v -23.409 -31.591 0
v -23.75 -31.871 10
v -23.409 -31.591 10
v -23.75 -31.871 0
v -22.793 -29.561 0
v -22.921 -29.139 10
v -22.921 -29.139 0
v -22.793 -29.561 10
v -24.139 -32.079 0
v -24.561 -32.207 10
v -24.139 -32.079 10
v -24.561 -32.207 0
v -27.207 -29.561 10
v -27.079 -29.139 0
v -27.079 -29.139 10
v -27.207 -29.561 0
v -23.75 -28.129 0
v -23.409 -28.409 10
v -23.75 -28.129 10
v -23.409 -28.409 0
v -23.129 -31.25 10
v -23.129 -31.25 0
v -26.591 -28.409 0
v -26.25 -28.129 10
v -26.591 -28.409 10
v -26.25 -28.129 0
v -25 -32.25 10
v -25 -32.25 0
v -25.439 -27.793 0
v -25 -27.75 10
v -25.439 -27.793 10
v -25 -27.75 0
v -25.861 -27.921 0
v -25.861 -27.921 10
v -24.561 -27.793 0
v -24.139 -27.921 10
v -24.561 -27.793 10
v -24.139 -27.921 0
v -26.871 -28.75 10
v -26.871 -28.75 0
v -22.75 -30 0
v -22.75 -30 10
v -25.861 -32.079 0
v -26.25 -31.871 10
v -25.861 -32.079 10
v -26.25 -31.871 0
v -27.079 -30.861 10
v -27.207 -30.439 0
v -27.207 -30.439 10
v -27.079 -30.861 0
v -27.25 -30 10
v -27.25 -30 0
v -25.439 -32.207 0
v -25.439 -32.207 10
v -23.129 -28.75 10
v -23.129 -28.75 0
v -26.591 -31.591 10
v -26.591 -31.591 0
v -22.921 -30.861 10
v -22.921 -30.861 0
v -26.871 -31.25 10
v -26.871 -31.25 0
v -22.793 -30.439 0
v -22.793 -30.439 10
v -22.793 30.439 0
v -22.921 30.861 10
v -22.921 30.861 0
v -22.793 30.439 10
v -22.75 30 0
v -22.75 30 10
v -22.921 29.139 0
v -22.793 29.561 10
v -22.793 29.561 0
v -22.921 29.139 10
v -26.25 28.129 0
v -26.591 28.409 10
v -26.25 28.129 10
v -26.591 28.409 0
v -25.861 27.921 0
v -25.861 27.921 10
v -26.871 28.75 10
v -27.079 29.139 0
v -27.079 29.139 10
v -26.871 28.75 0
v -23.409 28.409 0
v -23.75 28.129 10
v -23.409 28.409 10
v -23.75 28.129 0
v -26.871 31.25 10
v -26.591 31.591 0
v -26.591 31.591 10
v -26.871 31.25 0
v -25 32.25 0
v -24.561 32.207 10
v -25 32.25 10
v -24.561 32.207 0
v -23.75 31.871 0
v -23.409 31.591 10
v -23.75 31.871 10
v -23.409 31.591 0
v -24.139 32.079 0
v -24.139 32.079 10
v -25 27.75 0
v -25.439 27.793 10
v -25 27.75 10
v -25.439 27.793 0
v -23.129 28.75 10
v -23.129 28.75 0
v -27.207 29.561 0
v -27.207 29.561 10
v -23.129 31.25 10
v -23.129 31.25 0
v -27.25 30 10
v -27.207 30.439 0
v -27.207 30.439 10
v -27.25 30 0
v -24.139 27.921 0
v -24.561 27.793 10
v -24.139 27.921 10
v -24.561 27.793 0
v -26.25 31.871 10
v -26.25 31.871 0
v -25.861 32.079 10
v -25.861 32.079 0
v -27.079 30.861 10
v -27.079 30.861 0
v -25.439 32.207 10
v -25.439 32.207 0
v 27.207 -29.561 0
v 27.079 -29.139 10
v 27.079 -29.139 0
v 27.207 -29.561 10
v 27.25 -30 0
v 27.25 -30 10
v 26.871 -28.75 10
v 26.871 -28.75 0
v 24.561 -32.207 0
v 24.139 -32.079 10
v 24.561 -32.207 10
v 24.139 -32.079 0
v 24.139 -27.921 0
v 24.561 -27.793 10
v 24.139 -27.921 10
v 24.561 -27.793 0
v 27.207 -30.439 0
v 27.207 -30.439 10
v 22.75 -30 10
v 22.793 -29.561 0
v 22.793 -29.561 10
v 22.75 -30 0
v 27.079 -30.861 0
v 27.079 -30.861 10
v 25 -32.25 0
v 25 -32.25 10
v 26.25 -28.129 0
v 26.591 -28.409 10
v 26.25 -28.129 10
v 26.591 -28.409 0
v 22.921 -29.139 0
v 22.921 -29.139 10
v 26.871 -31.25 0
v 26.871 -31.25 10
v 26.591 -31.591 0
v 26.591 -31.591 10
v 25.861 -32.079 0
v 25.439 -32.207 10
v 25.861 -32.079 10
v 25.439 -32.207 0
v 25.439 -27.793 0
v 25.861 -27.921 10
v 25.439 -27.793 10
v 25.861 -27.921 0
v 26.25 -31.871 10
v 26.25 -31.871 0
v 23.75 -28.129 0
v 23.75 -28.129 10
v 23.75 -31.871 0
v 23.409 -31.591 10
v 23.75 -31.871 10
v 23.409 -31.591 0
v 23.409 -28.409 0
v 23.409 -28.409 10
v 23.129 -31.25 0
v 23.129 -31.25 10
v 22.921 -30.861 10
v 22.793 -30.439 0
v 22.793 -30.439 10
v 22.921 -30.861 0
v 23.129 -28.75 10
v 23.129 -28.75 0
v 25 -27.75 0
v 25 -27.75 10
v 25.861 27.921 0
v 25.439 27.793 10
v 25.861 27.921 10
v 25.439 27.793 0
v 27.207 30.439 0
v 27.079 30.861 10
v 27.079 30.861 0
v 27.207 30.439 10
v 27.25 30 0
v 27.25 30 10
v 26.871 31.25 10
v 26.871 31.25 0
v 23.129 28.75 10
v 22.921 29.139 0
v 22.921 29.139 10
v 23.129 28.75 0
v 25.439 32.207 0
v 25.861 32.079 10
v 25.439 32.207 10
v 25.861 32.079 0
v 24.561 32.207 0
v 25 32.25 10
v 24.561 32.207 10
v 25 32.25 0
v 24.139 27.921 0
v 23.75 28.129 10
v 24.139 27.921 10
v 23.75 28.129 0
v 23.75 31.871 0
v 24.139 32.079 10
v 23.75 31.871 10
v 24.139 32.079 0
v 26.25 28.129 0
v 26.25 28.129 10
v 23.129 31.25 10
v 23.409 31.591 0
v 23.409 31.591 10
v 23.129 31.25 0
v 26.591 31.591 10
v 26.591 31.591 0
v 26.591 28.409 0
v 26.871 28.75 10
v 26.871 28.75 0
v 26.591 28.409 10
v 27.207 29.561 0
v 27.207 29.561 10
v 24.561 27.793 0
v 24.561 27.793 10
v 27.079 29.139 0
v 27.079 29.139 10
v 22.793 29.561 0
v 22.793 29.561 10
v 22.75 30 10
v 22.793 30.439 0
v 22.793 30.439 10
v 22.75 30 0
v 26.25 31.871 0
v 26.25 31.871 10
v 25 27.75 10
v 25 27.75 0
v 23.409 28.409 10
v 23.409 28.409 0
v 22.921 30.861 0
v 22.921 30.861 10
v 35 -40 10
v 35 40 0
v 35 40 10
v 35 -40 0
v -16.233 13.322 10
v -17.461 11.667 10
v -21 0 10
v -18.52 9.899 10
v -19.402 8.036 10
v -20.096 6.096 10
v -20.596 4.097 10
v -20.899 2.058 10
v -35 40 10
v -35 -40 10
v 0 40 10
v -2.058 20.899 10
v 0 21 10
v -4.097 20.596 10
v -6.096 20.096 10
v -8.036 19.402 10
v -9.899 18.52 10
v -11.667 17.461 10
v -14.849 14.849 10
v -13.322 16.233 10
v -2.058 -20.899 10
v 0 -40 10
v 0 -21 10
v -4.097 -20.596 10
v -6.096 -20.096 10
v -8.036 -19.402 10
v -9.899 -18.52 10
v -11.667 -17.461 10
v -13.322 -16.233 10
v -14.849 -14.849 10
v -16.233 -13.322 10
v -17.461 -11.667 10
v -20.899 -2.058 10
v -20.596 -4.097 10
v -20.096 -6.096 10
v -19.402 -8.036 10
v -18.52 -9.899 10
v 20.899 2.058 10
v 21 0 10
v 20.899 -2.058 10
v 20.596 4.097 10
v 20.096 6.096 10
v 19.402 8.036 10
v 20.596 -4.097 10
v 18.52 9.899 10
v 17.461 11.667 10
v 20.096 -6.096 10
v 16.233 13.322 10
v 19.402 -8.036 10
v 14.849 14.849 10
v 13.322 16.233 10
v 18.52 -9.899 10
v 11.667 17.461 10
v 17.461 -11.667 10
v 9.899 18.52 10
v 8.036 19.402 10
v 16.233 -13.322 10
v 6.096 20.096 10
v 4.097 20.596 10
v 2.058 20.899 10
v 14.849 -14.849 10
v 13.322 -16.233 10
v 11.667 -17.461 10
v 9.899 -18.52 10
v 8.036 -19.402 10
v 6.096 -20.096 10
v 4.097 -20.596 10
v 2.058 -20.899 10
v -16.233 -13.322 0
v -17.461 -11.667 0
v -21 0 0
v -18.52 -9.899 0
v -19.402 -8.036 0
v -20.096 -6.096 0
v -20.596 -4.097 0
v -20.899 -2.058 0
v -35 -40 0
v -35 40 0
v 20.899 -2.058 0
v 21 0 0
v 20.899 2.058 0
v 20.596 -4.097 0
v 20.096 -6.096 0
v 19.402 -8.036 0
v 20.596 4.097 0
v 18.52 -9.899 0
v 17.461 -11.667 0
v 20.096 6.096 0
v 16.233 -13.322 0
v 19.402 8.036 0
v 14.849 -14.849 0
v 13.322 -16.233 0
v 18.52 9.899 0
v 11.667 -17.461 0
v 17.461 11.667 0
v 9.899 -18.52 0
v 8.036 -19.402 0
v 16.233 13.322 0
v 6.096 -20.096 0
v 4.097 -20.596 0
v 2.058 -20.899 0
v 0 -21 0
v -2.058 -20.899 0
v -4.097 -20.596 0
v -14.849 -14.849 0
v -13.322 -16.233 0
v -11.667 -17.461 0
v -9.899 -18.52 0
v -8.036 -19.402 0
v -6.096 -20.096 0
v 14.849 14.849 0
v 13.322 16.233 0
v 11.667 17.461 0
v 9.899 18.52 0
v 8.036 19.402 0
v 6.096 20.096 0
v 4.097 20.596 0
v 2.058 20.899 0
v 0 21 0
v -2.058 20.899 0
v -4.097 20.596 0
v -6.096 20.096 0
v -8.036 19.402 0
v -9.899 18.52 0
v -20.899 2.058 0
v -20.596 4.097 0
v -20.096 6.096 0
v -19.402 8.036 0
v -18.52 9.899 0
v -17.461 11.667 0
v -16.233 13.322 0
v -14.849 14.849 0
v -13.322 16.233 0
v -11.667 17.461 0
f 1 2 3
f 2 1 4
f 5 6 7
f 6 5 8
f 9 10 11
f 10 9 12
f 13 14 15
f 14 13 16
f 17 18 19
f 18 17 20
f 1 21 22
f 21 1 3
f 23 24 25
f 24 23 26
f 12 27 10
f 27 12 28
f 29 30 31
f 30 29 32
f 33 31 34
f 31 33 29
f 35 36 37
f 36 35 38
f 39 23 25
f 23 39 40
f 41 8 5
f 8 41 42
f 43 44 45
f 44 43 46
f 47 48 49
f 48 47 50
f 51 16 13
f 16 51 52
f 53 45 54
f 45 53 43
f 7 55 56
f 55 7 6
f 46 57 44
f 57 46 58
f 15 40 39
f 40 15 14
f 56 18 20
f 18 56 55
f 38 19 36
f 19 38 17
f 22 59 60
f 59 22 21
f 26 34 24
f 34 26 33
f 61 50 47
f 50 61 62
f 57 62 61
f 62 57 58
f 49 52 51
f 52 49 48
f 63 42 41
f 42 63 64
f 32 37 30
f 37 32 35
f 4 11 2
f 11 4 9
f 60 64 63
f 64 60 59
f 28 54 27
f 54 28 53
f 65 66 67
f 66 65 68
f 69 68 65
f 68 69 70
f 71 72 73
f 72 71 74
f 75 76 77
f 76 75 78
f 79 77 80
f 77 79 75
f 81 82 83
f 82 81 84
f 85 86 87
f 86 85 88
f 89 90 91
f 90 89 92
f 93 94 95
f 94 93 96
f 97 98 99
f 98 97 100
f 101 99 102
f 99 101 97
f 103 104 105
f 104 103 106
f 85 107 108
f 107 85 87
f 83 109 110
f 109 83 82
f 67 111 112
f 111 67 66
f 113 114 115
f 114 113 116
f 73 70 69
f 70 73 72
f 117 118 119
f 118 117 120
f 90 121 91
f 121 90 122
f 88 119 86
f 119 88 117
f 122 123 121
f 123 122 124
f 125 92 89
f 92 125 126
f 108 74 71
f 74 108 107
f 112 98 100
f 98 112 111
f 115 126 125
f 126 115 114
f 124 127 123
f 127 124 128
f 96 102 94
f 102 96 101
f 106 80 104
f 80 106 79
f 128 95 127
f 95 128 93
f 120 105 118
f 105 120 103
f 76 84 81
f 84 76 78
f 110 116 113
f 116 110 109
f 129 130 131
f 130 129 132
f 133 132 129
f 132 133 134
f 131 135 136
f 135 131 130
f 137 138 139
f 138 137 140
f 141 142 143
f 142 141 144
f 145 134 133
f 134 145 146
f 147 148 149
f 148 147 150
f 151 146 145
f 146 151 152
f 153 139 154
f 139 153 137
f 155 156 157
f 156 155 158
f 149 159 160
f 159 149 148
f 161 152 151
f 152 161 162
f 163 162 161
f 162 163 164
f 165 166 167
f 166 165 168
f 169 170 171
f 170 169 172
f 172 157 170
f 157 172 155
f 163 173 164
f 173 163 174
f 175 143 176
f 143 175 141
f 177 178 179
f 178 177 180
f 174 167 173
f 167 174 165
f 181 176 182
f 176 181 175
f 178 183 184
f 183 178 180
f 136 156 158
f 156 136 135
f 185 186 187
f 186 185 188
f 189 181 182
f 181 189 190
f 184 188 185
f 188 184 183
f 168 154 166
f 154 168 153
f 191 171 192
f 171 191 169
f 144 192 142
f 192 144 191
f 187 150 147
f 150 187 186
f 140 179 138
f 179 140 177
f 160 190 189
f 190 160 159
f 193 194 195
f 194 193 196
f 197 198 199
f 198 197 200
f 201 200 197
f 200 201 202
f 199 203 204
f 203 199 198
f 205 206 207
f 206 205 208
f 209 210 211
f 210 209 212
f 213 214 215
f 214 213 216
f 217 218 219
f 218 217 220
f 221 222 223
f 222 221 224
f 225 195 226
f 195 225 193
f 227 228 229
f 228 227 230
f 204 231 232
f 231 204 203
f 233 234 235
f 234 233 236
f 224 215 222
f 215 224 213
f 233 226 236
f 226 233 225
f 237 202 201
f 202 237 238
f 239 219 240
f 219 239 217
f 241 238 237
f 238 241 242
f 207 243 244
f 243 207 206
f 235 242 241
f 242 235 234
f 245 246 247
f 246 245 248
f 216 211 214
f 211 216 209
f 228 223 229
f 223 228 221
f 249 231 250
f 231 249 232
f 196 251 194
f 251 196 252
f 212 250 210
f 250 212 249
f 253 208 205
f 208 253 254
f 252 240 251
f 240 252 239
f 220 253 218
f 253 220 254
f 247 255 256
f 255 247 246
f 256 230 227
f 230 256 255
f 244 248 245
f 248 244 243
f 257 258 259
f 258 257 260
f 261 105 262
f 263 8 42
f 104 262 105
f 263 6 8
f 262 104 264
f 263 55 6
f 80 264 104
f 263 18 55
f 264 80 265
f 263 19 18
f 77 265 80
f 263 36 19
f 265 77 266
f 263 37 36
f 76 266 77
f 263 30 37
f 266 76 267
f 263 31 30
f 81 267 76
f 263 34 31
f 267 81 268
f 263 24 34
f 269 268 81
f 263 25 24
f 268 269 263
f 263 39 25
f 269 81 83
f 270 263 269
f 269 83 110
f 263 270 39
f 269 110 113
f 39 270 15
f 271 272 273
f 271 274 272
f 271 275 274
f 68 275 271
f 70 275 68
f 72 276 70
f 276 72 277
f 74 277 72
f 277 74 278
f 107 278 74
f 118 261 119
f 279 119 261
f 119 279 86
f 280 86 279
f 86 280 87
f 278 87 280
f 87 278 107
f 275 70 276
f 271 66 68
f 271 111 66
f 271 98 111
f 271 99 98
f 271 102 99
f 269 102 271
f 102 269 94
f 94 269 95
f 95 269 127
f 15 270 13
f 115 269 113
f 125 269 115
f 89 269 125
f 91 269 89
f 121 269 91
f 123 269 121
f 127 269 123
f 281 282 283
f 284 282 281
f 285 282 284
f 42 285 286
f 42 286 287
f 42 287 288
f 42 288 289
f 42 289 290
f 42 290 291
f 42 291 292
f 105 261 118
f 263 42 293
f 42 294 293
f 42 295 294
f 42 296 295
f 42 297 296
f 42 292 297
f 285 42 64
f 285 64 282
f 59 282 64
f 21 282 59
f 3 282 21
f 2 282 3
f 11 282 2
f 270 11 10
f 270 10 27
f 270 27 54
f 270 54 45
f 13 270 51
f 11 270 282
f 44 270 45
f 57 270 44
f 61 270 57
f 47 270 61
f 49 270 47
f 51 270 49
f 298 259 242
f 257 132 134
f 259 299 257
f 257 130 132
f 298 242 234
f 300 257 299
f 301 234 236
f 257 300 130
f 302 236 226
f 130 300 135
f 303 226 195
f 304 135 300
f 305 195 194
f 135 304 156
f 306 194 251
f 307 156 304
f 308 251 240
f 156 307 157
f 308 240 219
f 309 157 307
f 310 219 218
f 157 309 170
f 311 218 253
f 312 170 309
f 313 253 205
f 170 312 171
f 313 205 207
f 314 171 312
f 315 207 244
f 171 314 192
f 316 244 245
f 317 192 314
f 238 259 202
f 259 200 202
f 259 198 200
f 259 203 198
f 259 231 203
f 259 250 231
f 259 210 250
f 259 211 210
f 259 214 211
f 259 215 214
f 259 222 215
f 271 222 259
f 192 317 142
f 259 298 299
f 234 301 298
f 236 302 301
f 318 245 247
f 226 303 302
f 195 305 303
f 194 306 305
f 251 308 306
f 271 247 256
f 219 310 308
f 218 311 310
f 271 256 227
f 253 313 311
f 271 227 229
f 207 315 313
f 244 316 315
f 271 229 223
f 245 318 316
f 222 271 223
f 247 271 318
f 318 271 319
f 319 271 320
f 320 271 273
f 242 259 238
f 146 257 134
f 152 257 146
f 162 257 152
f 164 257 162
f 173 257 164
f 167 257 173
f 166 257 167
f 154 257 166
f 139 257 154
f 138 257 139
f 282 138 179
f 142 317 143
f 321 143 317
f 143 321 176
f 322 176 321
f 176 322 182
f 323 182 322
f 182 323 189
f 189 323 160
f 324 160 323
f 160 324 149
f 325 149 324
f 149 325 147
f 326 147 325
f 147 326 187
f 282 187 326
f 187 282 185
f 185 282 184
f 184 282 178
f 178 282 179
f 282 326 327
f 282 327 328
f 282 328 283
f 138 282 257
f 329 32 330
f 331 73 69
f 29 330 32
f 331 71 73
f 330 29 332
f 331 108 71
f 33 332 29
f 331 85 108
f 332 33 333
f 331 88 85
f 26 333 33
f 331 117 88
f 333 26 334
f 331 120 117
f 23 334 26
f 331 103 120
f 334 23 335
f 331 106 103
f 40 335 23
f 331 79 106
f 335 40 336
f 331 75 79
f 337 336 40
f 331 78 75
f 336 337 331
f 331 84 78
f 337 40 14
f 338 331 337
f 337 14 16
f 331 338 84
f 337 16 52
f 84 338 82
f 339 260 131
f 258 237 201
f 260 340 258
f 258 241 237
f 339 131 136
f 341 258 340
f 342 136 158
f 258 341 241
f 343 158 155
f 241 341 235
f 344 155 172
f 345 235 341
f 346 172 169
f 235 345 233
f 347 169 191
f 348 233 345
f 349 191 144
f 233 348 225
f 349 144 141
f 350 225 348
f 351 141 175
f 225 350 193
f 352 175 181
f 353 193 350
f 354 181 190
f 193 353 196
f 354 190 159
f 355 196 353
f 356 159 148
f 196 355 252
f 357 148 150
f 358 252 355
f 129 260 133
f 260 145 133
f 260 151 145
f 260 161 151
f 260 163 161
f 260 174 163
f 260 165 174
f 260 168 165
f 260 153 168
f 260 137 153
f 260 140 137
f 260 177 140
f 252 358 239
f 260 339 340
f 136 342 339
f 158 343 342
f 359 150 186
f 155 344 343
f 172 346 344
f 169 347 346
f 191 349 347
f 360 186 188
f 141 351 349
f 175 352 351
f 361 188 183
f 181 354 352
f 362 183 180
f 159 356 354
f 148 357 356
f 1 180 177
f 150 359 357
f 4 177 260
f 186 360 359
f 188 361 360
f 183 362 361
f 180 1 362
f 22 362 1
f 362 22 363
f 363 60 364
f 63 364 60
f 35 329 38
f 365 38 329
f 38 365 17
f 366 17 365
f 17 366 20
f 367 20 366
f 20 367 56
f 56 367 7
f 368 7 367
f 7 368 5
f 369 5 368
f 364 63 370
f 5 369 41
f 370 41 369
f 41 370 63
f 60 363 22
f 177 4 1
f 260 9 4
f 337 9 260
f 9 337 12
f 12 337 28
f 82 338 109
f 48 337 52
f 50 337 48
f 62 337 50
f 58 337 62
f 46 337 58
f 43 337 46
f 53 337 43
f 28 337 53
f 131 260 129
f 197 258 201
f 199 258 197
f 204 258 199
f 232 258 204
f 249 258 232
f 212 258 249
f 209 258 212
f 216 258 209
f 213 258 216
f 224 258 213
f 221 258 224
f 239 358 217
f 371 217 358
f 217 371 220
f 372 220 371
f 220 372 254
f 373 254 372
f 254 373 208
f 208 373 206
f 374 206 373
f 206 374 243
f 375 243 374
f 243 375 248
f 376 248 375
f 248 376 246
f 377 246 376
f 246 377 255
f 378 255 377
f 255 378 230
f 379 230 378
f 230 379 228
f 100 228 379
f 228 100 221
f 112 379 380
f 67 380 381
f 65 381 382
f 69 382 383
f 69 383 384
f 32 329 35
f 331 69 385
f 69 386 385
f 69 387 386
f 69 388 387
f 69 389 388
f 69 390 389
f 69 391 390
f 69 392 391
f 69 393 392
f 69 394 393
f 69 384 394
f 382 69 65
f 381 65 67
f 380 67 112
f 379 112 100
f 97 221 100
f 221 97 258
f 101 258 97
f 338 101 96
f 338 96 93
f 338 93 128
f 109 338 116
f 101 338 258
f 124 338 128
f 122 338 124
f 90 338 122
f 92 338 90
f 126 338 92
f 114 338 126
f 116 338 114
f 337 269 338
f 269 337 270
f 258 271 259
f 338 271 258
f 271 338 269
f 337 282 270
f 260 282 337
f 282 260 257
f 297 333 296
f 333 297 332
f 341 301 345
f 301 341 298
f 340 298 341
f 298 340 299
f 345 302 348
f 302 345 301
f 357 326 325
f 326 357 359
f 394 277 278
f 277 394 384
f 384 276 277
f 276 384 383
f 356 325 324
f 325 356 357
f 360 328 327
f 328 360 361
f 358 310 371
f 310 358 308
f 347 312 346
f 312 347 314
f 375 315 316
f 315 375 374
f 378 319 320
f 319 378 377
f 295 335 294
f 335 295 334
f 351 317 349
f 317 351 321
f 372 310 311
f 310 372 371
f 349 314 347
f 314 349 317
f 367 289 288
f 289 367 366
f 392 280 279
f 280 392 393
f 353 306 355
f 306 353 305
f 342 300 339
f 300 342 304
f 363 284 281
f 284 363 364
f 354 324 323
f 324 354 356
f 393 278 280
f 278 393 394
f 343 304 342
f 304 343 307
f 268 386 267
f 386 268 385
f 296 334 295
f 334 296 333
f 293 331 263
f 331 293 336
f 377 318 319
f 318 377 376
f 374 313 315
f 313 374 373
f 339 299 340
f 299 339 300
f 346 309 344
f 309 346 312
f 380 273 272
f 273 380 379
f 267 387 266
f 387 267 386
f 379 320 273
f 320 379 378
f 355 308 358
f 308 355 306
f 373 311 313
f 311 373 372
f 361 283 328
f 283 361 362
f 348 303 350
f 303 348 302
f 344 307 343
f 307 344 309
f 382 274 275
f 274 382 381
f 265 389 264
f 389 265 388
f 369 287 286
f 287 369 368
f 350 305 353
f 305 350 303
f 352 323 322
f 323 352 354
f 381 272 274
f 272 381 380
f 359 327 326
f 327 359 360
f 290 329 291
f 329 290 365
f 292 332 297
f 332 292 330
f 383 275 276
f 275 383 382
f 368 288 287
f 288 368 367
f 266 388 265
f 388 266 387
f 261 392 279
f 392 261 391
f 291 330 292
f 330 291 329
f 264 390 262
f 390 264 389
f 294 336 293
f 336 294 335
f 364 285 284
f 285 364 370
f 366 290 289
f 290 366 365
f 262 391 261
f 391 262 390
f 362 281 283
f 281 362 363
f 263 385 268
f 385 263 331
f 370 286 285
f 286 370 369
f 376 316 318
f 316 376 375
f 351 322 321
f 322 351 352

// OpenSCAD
// Focuser Base for round tube (调焦座弧面底座转接垫块)
// 单位: mm

tube_od = 160; // 镜筒外径
focuser_hole = 42; // 调焦座中心通光孔径
base_width = 70; // 底座宽
base_length = 80; // 底座长
base_thickness = 10; // 底座最薄处厚度

module focuser_base() {
    difference() {
        // 基础块
        translate([-base_width/2, -base_length/2, 0])
        cube([base_width, base_length, base_thickness]);
        
        // 切割出匹配镜筒外径的弧面
        translate([0, 0, tube_od/2 + base_thickness])
        rotate([90, 0, 0])
        cylinder(d=tube_od, h=base_length+2, center=true, $fn=200);
        
        // 中心通孔
        translate([0, 0, -1])
        cylinder(d=focuser_hole, h=base_thickness+2, $fn=64);
        
        // 调焦座固定螺丝孔 (4个)
        for(x=[-base_width/2+10, base_width/2-10]) {
            for(y=[-base_length/2+10, base_length/2-10]) {
                translate([x, y, -1])
                cylinder(d=4.5, h=base_thickness+2, $fn=32);
            }
        }
    }
}

focuser_base();
